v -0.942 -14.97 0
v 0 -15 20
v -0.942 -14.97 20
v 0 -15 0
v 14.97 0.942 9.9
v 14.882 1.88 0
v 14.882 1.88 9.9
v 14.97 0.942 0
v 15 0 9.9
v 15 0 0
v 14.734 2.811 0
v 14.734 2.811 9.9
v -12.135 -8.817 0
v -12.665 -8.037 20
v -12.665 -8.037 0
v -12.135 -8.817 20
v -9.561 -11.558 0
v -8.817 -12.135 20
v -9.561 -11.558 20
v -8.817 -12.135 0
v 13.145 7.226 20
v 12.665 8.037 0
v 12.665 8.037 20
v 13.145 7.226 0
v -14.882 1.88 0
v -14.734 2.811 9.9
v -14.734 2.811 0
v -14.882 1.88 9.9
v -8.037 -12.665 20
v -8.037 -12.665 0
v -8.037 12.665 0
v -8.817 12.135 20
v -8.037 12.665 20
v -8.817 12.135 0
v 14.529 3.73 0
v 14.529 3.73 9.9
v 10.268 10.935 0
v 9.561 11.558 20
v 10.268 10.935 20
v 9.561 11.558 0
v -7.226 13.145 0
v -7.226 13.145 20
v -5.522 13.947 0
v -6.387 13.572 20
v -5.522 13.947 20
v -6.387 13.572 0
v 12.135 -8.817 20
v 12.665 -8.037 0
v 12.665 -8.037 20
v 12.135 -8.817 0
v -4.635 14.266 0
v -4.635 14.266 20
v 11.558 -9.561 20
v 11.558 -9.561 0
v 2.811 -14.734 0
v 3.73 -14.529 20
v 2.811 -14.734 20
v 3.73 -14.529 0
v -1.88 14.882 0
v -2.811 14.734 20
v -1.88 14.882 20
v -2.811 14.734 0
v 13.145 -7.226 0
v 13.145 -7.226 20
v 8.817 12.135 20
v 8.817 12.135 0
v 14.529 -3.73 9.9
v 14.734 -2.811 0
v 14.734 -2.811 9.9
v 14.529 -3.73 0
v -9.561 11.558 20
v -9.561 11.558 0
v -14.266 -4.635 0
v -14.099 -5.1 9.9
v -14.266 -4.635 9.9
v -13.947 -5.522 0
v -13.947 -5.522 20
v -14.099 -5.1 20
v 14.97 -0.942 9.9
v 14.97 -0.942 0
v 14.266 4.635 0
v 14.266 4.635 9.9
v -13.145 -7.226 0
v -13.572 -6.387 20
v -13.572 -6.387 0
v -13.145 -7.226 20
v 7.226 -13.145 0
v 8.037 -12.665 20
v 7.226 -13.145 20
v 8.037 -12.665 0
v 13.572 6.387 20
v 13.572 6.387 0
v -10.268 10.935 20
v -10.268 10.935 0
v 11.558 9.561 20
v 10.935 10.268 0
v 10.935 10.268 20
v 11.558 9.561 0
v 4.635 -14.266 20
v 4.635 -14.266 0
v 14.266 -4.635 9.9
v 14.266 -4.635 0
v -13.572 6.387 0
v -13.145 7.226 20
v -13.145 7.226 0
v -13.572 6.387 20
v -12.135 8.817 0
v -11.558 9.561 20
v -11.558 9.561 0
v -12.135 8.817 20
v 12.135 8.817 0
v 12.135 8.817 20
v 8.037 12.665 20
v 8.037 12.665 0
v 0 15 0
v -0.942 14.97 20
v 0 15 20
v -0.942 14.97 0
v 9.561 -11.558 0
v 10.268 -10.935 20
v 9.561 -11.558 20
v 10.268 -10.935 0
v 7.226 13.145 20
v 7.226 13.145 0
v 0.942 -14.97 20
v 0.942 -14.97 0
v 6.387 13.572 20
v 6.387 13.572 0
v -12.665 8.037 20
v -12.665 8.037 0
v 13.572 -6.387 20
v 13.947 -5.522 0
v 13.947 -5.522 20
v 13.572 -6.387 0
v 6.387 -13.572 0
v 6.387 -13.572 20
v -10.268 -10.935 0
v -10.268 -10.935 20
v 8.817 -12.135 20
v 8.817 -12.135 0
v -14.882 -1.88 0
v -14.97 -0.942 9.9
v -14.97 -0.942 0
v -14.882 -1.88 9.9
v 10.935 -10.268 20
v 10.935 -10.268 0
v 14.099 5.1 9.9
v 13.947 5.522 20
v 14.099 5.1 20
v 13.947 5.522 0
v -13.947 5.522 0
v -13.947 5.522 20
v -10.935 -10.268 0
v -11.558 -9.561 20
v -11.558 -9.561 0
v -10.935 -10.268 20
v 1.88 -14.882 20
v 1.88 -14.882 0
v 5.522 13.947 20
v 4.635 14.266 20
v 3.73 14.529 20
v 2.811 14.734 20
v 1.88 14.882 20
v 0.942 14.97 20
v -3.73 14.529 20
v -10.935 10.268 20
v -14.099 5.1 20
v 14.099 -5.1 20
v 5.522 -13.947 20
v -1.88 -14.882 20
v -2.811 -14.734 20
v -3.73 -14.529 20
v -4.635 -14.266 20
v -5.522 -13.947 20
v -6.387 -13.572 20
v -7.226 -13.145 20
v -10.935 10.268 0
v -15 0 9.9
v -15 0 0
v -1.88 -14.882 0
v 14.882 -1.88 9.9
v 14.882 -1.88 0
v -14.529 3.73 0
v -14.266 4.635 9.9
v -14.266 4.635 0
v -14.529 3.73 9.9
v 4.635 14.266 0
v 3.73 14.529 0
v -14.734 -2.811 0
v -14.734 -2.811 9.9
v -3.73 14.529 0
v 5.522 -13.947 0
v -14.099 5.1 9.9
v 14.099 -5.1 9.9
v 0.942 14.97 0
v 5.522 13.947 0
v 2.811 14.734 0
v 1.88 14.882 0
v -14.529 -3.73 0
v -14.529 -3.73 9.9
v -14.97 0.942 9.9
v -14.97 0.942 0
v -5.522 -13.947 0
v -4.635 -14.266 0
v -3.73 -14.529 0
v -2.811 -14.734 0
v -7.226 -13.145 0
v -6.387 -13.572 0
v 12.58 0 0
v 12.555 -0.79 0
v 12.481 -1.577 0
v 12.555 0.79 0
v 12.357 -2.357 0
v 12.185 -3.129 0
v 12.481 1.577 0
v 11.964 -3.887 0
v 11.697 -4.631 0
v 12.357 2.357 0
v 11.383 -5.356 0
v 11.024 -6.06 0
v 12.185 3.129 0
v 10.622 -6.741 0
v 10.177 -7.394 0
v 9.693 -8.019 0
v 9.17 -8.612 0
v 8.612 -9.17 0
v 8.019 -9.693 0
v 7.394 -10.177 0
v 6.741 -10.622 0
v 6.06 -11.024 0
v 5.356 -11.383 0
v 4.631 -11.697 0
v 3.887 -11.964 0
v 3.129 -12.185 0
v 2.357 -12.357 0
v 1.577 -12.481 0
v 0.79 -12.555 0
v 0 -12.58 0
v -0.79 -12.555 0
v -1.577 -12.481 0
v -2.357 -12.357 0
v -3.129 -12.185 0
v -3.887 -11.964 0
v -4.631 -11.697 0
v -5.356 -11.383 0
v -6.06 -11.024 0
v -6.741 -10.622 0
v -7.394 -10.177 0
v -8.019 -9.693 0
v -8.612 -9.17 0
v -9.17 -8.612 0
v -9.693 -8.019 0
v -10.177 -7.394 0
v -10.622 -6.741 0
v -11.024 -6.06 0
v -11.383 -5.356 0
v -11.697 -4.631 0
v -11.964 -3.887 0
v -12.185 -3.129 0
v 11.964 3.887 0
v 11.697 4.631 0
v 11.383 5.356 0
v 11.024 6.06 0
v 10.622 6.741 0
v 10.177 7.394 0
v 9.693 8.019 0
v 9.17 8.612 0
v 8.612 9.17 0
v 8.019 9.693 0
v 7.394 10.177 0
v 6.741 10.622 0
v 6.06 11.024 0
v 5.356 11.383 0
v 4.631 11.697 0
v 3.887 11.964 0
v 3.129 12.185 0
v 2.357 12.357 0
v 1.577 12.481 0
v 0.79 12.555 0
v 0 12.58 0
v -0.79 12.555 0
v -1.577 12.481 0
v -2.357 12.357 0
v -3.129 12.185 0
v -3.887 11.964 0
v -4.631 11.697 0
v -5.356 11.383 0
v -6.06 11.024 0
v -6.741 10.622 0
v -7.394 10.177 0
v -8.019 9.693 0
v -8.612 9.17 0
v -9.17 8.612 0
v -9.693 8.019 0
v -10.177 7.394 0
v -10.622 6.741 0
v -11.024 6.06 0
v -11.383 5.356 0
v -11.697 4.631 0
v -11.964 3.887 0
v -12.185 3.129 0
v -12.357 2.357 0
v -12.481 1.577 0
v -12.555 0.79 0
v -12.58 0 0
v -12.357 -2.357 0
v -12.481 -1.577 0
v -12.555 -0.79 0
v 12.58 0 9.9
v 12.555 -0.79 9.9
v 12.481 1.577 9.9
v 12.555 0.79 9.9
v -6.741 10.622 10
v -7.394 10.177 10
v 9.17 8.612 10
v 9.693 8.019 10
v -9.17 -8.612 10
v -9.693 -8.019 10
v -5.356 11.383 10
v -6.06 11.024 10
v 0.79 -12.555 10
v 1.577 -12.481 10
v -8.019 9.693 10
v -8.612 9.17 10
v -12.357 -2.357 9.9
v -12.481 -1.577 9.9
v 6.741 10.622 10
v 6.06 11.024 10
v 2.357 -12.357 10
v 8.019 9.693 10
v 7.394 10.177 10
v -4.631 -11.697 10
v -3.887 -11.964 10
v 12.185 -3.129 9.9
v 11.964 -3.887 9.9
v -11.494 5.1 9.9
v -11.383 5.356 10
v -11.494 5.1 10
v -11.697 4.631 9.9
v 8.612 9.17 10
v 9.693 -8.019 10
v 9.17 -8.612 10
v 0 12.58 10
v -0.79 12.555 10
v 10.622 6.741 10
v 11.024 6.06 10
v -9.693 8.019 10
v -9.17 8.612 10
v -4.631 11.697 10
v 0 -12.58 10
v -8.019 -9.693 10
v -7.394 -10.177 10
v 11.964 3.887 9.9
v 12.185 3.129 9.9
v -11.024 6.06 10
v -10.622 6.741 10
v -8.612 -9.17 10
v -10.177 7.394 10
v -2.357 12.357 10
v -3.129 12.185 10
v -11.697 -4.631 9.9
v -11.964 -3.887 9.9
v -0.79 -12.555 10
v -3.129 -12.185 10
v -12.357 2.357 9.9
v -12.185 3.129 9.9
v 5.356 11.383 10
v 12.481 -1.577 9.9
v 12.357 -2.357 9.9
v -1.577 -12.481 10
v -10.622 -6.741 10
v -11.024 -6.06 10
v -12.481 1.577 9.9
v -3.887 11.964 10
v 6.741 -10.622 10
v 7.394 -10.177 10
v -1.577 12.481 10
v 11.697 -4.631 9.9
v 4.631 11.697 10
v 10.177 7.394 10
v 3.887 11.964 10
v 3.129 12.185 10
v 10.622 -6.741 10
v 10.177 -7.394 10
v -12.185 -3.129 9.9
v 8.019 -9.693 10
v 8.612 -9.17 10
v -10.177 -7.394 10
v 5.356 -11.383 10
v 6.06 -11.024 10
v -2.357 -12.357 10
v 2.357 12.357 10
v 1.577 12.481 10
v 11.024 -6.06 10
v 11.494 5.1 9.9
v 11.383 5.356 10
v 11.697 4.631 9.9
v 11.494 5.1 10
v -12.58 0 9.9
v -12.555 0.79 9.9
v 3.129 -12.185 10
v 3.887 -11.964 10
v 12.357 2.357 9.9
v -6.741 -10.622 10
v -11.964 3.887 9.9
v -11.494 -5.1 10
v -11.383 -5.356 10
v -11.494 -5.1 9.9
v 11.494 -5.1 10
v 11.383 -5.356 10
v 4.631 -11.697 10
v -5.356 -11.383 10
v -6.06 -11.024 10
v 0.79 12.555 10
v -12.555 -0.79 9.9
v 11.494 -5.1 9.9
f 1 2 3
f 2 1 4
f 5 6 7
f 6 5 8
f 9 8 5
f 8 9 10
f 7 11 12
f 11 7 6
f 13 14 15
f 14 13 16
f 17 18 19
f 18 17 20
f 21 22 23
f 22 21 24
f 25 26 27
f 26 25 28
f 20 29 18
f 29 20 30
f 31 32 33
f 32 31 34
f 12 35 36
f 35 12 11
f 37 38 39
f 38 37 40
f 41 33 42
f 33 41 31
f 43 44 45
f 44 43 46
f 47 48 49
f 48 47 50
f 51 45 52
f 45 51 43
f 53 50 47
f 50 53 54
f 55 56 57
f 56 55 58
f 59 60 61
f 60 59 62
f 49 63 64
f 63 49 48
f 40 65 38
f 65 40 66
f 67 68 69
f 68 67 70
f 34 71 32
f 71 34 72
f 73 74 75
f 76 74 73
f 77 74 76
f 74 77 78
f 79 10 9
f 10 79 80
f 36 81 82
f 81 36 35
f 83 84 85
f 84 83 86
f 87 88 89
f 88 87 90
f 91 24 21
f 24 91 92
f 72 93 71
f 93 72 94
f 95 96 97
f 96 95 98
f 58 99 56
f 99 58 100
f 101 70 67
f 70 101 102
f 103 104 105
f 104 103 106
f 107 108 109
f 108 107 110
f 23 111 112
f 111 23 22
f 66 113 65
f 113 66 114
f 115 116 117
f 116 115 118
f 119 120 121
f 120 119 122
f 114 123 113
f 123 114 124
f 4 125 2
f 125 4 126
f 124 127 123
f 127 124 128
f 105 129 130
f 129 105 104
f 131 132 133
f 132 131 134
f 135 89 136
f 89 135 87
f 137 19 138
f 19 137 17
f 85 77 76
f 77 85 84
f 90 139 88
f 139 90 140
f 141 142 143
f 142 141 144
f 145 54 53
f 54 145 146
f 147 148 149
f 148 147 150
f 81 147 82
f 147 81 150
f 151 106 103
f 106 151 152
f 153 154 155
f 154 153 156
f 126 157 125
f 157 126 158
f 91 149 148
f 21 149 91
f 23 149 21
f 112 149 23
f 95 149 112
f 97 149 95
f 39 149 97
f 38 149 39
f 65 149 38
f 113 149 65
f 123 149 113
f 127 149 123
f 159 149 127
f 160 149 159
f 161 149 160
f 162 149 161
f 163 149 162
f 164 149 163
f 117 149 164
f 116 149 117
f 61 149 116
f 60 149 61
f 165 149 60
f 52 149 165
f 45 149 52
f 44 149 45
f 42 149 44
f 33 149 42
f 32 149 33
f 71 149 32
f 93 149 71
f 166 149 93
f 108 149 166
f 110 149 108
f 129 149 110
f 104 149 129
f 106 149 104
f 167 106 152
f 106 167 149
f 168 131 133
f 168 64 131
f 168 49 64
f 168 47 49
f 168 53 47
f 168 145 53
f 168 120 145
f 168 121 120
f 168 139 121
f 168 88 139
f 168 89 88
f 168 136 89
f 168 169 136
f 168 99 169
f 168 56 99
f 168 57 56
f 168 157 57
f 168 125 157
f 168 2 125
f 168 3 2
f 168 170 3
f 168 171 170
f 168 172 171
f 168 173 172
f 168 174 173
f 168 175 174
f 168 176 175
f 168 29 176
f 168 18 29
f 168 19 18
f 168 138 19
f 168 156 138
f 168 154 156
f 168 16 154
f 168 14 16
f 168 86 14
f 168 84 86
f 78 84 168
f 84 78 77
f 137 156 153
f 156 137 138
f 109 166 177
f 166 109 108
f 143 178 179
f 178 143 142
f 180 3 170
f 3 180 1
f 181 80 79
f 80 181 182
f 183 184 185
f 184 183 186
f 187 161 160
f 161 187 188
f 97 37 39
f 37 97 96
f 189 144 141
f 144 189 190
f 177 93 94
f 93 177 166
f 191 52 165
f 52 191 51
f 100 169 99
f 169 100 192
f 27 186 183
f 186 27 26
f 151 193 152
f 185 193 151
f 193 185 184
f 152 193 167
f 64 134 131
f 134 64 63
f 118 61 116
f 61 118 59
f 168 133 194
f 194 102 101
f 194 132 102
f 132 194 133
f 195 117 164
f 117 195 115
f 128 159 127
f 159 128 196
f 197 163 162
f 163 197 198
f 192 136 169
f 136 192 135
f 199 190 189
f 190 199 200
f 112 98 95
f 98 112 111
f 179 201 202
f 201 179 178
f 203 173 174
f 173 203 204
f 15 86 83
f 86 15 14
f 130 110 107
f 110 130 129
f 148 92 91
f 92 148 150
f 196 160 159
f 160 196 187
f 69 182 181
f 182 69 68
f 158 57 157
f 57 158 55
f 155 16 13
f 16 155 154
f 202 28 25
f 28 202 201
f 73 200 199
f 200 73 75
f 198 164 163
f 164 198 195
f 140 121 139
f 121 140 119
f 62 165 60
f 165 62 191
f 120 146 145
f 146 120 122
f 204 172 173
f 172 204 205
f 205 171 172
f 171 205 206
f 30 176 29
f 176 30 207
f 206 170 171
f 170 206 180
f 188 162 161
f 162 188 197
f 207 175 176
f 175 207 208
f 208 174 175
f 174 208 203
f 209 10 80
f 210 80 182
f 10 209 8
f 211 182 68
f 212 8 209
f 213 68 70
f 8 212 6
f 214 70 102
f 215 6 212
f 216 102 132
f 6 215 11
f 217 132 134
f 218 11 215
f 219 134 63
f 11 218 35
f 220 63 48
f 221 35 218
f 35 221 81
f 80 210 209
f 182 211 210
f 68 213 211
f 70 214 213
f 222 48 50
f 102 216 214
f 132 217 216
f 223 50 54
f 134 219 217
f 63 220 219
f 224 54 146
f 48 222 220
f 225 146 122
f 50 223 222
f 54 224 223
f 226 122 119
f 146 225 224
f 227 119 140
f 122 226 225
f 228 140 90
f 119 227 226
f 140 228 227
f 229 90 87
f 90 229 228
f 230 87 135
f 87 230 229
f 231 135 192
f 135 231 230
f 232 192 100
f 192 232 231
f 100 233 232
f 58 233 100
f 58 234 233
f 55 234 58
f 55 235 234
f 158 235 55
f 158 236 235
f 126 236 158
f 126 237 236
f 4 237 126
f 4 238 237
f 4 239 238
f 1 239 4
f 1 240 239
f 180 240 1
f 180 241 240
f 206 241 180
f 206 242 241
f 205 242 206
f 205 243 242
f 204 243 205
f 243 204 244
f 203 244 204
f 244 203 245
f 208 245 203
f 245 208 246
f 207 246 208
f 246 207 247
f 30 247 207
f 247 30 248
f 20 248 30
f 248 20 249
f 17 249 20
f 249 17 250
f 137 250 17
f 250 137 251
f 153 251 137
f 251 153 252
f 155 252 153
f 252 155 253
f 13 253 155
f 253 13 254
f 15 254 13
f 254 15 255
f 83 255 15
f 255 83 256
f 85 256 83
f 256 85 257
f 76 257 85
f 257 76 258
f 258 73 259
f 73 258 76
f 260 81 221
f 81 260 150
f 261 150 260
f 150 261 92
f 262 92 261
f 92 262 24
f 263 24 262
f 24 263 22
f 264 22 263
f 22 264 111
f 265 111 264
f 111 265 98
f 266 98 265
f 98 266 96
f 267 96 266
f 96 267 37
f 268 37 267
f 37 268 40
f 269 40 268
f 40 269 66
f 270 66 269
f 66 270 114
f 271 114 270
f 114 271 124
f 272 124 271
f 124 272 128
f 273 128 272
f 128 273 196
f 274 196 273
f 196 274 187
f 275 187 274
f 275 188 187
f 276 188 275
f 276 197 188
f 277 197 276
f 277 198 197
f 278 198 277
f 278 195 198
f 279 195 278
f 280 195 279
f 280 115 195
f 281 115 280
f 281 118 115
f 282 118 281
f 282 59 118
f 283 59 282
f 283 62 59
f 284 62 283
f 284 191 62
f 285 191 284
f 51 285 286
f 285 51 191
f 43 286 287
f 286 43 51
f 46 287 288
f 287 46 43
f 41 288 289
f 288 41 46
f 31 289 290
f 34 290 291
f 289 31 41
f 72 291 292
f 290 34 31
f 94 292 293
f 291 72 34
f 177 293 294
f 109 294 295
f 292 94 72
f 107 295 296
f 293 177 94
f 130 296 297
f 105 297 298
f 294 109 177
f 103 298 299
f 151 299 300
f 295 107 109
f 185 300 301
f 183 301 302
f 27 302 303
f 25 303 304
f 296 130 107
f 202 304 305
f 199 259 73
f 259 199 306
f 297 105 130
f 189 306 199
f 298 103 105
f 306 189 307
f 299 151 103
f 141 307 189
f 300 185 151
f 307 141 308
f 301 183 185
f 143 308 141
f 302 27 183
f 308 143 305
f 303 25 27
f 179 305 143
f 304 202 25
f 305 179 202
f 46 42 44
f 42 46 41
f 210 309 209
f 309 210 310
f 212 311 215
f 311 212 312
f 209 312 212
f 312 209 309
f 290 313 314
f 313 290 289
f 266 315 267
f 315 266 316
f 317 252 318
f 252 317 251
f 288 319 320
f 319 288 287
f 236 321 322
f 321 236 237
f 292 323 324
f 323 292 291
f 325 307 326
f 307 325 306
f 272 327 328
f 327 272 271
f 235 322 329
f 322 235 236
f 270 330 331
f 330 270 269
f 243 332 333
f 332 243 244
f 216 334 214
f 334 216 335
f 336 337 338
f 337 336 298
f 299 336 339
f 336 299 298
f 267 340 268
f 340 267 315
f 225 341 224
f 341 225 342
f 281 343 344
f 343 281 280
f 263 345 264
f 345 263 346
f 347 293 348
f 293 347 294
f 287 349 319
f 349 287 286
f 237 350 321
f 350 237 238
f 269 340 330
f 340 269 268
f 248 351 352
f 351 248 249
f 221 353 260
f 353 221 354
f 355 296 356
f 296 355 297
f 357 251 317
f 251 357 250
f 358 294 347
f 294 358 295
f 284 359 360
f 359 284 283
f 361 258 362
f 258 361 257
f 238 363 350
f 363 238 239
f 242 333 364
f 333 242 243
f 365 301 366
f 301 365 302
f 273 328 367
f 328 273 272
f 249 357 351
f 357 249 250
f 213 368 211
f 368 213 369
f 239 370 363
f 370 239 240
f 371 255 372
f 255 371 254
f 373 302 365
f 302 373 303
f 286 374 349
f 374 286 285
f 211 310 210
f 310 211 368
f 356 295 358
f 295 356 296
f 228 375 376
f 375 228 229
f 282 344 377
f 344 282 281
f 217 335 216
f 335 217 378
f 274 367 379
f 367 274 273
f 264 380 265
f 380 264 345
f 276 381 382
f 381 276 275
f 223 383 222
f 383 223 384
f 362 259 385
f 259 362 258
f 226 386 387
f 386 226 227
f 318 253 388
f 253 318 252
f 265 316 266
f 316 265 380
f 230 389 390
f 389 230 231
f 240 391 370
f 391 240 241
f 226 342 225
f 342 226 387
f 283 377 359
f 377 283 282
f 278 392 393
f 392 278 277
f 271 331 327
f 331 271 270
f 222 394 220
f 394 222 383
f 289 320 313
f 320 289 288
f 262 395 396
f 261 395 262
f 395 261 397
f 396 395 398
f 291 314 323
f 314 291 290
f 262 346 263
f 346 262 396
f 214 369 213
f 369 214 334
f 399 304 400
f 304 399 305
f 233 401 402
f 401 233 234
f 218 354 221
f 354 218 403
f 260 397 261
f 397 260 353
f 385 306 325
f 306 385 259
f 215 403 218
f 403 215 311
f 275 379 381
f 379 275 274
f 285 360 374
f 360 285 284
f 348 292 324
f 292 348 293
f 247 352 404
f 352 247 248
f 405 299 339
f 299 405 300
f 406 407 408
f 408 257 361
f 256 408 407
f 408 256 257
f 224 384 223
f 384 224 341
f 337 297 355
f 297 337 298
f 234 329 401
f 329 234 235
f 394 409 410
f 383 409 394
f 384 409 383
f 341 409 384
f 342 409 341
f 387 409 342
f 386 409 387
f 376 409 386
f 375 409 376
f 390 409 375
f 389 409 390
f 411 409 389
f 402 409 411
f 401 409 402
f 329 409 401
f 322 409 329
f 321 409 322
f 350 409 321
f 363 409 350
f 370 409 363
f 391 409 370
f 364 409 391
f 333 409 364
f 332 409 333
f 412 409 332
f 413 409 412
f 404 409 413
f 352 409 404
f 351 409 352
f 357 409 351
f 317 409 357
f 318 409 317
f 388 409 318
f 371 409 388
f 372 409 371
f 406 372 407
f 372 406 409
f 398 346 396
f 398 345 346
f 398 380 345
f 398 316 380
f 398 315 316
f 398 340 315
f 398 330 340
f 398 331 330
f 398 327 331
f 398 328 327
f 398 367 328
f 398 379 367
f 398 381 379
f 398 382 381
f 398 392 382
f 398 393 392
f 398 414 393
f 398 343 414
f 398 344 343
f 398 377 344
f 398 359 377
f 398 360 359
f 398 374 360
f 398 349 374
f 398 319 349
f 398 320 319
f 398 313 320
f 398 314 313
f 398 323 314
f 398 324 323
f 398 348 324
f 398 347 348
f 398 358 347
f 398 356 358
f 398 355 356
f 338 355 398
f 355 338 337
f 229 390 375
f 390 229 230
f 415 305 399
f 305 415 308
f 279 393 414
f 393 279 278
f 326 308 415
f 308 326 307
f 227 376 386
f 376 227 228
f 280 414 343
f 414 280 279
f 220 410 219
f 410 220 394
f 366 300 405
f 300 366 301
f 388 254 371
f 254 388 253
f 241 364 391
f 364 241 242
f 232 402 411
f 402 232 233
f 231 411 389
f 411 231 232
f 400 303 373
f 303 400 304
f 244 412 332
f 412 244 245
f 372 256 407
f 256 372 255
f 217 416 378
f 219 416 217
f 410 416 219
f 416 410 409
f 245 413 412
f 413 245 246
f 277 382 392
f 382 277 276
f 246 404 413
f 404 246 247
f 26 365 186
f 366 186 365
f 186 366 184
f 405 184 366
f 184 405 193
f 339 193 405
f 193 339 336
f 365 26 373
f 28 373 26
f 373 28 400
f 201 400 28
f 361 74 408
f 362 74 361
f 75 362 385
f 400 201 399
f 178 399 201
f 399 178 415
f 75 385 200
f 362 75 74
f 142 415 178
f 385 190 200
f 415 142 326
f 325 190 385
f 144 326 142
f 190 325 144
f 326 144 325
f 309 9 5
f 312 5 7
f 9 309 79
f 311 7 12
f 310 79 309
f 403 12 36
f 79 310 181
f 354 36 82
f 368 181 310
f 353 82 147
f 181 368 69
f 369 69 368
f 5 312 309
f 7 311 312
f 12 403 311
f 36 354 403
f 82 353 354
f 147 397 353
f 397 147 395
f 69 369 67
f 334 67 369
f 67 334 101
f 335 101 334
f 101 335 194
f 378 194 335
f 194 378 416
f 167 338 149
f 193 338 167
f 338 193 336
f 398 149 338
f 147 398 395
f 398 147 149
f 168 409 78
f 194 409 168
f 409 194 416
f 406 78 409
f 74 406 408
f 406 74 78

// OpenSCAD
$fn = 100;
difference() {
    cylinder(20, r=15, true);
    translate([0, 0, 0]) {
        cylinder(10, r=12.58, true);
    }
    rotate([0, 90, 0]) {
        translate([-15, 0, 0]) {
            #cube([10.2, 10.2, 30], true);
        }
    }
}
